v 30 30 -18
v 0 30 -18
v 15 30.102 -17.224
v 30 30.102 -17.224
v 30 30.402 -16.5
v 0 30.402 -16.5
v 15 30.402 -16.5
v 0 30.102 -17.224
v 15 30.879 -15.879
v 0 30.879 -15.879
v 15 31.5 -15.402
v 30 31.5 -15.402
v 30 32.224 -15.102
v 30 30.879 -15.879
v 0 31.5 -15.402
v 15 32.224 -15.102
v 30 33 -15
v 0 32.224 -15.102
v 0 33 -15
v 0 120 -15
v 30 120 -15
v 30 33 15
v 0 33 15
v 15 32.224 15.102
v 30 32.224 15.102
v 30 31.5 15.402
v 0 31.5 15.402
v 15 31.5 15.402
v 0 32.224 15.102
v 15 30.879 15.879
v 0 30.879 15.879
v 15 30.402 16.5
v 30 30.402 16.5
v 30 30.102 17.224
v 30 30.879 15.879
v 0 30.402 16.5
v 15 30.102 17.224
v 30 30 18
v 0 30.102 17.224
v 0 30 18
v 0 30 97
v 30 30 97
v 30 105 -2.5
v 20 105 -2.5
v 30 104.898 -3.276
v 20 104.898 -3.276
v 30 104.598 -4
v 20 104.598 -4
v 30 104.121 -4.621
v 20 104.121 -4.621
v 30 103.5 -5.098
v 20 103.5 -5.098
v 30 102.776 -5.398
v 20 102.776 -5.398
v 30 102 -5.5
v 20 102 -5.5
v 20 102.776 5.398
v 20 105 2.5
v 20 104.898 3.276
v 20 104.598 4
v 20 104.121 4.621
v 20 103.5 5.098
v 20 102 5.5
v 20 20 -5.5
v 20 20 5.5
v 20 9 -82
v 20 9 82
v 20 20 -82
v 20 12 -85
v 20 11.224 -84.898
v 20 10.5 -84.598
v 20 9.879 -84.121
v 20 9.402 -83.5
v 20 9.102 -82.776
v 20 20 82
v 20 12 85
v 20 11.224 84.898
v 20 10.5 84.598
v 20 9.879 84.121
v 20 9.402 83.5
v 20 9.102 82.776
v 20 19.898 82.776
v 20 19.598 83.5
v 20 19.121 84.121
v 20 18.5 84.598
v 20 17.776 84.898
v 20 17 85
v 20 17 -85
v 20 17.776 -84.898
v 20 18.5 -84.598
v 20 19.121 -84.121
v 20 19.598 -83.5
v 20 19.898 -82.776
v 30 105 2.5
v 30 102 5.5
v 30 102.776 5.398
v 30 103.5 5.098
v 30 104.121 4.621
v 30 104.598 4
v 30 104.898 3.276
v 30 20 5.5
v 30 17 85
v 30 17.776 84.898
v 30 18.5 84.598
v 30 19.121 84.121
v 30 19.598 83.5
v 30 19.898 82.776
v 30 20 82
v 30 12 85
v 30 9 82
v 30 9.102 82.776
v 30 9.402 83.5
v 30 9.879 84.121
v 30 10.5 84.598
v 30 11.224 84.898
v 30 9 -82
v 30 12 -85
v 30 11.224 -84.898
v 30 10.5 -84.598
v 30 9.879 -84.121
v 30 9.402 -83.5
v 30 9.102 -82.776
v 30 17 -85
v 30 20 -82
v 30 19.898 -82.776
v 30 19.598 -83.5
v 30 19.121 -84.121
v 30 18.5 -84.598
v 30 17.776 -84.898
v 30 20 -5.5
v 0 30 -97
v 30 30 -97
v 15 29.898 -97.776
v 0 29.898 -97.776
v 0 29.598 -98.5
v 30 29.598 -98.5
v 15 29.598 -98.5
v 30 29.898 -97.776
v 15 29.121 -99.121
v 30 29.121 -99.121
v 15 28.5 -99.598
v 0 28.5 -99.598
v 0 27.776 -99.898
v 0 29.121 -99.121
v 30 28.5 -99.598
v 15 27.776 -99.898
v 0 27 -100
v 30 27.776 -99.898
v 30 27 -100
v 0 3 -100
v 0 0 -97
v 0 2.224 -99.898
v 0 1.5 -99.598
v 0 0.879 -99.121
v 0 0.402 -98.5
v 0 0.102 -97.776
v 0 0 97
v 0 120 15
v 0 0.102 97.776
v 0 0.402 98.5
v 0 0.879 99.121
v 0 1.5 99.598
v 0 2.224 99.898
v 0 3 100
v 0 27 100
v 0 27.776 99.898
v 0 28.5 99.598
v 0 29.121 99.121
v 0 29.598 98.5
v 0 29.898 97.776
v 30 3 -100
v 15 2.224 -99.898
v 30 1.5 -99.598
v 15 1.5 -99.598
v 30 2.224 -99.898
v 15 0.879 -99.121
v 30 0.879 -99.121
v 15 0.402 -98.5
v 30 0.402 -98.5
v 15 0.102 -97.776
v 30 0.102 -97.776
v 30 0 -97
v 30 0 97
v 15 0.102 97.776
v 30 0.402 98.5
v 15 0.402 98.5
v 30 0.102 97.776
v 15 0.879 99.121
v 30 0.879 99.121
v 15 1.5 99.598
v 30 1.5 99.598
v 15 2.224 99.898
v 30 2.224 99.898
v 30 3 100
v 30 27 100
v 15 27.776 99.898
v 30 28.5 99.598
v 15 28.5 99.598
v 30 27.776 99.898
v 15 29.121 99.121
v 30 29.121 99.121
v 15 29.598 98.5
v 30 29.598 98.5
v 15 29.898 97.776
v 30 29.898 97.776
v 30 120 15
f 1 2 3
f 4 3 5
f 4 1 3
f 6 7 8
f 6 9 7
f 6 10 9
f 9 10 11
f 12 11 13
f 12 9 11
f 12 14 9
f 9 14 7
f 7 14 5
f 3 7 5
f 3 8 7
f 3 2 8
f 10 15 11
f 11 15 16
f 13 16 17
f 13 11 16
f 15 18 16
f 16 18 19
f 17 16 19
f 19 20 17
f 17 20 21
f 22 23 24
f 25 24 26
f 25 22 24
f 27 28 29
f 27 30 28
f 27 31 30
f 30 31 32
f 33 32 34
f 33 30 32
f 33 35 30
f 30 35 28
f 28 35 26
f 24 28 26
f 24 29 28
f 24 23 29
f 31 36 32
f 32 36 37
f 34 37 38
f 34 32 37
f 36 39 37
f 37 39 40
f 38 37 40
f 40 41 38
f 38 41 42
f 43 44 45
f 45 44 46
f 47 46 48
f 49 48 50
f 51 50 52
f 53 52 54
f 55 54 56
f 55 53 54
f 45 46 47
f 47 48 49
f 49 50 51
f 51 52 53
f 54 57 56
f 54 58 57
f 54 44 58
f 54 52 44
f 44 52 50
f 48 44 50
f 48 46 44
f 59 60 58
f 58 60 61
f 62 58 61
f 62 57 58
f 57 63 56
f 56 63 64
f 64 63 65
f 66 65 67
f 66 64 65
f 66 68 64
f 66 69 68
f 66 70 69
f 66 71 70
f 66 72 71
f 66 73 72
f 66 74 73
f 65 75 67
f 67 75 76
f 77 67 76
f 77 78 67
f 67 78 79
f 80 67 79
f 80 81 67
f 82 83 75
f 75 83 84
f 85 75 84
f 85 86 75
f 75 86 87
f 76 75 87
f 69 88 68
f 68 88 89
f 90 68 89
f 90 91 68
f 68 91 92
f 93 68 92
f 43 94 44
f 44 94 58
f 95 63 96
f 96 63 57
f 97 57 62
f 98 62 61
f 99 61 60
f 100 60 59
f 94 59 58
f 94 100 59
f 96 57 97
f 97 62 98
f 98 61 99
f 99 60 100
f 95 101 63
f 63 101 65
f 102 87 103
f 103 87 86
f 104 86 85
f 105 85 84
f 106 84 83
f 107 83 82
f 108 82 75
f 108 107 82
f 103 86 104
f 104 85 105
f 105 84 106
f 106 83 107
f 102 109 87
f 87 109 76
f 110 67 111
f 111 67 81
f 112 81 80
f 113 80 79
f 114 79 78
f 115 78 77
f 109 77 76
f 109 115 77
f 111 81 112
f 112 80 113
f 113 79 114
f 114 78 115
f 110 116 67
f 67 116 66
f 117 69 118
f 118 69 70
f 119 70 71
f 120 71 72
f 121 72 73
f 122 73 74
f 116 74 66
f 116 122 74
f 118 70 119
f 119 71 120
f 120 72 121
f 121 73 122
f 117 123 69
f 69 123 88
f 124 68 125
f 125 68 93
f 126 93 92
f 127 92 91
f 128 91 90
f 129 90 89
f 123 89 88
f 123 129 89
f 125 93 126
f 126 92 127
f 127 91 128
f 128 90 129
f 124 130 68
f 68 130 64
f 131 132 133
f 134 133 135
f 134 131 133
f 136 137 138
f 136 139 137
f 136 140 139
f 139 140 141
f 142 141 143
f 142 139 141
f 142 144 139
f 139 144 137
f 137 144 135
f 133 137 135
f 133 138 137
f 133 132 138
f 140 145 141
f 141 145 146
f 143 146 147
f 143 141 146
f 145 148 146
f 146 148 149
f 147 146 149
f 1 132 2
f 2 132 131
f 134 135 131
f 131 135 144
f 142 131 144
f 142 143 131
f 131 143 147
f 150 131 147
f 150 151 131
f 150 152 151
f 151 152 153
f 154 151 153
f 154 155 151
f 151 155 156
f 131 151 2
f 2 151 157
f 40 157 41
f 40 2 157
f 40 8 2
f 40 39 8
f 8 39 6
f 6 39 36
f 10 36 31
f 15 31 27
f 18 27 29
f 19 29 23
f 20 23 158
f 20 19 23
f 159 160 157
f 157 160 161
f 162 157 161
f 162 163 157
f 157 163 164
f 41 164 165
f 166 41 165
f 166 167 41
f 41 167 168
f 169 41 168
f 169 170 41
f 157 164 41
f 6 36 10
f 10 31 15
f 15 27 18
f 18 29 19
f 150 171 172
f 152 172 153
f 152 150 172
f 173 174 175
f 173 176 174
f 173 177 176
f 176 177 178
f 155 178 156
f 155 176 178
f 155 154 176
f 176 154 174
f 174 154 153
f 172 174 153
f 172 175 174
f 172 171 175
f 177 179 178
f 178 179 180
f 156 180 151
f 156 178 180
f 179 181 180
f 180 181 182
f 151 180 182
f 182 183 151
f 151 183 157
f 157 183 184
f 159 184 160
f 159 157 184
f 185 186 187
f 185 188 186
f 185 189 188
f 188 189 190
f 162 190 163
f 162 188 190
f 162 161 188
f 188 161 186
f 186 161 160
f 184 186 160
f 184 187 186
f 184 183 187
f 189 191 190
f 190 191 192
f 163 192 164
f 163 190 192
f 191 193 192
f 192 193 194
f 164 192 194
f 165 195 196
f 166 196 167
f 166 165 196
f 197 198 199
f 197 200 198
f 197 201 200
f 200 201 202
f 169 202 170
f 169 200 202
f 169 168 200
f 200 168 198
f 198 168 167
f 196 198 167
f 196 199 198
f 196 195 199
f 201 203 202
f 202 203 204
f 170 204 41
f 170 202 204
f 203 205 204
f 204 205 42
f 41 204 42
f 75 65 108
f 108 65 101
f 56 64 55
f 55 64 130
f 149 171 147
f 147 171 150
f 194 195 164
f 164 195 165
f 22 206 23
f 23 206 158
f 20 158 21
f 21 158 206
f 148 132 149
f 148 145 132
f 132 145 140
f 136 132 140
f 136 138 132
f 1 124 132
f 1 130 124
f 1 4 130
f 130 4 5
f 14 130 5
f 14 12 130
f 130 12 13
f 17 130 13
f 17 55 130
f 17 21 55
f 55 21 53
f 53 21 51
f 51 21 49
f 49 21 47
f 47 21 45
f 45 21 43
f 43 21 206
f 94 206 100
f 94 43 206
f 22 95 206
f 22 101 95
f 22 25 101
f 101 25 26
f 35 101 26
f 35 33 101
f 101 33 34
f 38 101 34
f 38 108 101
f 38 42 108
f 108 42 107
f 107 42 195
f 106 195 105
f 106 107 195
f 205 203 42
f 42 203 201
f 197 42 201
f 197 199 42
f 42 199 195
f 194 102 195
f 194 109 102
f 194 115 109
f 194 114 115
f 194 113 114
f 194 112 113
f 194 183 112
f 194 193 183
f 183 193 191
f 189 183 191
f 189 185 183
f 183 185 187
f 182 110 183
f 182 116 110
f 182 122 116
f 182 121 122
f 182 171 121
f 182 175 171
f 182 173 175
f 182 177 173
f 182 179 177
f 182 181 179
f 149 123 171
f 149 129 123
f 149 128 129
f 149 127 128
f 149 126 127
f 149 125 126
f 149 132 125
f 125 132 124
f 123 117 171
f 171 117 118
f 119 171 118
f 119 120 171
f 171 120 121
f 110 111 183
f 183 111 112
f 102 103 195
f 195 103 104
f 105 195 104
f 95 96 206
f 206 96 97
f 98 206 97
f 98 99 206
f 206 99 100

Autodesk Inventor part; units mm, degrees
ref_plane "YZ Plane" through (0, 0, 0) normal (1, 0, 0) x (0, 1, 0)
ref_plane "XZ Plane" through (0, 0, 0) normal (0, 1, 0) x (-1, 0, 0)
ref_plane "XY Plane" through (0, 0, 0) normal (0, 0, 1) x (1, 0, 0)
sketch "スケッチ1" plane through (0, 0, 0) normal (1, 0, 0) x (0, 1, 0)
  line L0 (30, 15) -> (120, 15)
  line L1 (120, 15) -> (120, -15)
  line L2 (120, -15) -> (30, -15)
  line L3 (0, -15) -> (0, 15)
  line L4 (30, 100) -> (0, 100)
  line L5 (0, 100) -> (0, -100)
  line L6 (0, -100) -> (30, -100)
  line L7 (30, -100) -> (30, -15)
  line L8 (30, 15) -> (30, 100)
  point P0 (0, 0)
  point P1 (0, 0)
  dimension "d0" = 30
  dimension "d1" = 120
  dimension "d2" = 30
  dimension "d3" = 200
extrude "押し出し1" add sketch "スケッチ1" along normal blind 30
sketch "スケッチ2" plane through (30, 0, 0) normal (1, 0, 0) x (0, 0, -1)
  line L0 (-23.0571, 9) -> (23.0571, 9)
  line L1 (5.5, 20) -> (5.5, 105)
  line L2 (5.5, 105) -> (-5.5, 105)
  line L3 (-5.5, 105) -> (-5.5, 20)
  line L4 (-100, 0) -> (100, 0) projected
  line L5 (-85, 9) -> (85, 9)
  line L6 (85, 9) -> (85, 20)
  line L7 (-85, 20) -> (-85, 9)
  line L8 (85, 20) -> (5.5, 20)
  line L9 (-5.5, 20) -> (-85, 20)
  point P0 (0, 0)
  point P1 (0, 9)
  dimension "d6" = 11
  dimension "d8" = 11
  dimension "d9" = 170
  dimension "d10" = 9
  dimension "d11" = 11
  dimension "d12" = 85
sketch "スケッチ3" plane through (30, 0, 0) normal (1, 0, 0) x (0, 0, -1)
  point P0 (0, 0)
extrude "押し出し2" cut sketch "スケッチ2" against normal blind 10
fillet "フィレット1" radius 3 1 edges at (15, 30, 100)
fillet "フィレット2" radius 3 1 edges at (15, 0, 100)
fillet "フィレット3" radius 3 1 edges at (15, 0, -100)
fillet "フィレット4" radius 3 1 edges at (15, 30, -100)
fillet "フィレット5" radius 3 1 edges at (25, 20, -85)
fillet "フィレット6" radius 3 1 edges at (25, 9, -85)
fillet "フィレット7" radius 3 1 edges at (25, 9, 85)
fillet "フィレット8" radius 3 1 edges at (25, 20, 85)
fillet "フィレット9" radius 3 1 edges at (25, 105, 5.5)
fillet "フィレット10" radius 3 1 edges at (25, 105, -5.5)
fillet "フィレット11" radius 3 1 edges at (15, 30, 15)
fillet "フィレット12" radius 3 1 edges at (15, 30, -15)
equation "\"d11\" = d8"
properties part number "Main"
